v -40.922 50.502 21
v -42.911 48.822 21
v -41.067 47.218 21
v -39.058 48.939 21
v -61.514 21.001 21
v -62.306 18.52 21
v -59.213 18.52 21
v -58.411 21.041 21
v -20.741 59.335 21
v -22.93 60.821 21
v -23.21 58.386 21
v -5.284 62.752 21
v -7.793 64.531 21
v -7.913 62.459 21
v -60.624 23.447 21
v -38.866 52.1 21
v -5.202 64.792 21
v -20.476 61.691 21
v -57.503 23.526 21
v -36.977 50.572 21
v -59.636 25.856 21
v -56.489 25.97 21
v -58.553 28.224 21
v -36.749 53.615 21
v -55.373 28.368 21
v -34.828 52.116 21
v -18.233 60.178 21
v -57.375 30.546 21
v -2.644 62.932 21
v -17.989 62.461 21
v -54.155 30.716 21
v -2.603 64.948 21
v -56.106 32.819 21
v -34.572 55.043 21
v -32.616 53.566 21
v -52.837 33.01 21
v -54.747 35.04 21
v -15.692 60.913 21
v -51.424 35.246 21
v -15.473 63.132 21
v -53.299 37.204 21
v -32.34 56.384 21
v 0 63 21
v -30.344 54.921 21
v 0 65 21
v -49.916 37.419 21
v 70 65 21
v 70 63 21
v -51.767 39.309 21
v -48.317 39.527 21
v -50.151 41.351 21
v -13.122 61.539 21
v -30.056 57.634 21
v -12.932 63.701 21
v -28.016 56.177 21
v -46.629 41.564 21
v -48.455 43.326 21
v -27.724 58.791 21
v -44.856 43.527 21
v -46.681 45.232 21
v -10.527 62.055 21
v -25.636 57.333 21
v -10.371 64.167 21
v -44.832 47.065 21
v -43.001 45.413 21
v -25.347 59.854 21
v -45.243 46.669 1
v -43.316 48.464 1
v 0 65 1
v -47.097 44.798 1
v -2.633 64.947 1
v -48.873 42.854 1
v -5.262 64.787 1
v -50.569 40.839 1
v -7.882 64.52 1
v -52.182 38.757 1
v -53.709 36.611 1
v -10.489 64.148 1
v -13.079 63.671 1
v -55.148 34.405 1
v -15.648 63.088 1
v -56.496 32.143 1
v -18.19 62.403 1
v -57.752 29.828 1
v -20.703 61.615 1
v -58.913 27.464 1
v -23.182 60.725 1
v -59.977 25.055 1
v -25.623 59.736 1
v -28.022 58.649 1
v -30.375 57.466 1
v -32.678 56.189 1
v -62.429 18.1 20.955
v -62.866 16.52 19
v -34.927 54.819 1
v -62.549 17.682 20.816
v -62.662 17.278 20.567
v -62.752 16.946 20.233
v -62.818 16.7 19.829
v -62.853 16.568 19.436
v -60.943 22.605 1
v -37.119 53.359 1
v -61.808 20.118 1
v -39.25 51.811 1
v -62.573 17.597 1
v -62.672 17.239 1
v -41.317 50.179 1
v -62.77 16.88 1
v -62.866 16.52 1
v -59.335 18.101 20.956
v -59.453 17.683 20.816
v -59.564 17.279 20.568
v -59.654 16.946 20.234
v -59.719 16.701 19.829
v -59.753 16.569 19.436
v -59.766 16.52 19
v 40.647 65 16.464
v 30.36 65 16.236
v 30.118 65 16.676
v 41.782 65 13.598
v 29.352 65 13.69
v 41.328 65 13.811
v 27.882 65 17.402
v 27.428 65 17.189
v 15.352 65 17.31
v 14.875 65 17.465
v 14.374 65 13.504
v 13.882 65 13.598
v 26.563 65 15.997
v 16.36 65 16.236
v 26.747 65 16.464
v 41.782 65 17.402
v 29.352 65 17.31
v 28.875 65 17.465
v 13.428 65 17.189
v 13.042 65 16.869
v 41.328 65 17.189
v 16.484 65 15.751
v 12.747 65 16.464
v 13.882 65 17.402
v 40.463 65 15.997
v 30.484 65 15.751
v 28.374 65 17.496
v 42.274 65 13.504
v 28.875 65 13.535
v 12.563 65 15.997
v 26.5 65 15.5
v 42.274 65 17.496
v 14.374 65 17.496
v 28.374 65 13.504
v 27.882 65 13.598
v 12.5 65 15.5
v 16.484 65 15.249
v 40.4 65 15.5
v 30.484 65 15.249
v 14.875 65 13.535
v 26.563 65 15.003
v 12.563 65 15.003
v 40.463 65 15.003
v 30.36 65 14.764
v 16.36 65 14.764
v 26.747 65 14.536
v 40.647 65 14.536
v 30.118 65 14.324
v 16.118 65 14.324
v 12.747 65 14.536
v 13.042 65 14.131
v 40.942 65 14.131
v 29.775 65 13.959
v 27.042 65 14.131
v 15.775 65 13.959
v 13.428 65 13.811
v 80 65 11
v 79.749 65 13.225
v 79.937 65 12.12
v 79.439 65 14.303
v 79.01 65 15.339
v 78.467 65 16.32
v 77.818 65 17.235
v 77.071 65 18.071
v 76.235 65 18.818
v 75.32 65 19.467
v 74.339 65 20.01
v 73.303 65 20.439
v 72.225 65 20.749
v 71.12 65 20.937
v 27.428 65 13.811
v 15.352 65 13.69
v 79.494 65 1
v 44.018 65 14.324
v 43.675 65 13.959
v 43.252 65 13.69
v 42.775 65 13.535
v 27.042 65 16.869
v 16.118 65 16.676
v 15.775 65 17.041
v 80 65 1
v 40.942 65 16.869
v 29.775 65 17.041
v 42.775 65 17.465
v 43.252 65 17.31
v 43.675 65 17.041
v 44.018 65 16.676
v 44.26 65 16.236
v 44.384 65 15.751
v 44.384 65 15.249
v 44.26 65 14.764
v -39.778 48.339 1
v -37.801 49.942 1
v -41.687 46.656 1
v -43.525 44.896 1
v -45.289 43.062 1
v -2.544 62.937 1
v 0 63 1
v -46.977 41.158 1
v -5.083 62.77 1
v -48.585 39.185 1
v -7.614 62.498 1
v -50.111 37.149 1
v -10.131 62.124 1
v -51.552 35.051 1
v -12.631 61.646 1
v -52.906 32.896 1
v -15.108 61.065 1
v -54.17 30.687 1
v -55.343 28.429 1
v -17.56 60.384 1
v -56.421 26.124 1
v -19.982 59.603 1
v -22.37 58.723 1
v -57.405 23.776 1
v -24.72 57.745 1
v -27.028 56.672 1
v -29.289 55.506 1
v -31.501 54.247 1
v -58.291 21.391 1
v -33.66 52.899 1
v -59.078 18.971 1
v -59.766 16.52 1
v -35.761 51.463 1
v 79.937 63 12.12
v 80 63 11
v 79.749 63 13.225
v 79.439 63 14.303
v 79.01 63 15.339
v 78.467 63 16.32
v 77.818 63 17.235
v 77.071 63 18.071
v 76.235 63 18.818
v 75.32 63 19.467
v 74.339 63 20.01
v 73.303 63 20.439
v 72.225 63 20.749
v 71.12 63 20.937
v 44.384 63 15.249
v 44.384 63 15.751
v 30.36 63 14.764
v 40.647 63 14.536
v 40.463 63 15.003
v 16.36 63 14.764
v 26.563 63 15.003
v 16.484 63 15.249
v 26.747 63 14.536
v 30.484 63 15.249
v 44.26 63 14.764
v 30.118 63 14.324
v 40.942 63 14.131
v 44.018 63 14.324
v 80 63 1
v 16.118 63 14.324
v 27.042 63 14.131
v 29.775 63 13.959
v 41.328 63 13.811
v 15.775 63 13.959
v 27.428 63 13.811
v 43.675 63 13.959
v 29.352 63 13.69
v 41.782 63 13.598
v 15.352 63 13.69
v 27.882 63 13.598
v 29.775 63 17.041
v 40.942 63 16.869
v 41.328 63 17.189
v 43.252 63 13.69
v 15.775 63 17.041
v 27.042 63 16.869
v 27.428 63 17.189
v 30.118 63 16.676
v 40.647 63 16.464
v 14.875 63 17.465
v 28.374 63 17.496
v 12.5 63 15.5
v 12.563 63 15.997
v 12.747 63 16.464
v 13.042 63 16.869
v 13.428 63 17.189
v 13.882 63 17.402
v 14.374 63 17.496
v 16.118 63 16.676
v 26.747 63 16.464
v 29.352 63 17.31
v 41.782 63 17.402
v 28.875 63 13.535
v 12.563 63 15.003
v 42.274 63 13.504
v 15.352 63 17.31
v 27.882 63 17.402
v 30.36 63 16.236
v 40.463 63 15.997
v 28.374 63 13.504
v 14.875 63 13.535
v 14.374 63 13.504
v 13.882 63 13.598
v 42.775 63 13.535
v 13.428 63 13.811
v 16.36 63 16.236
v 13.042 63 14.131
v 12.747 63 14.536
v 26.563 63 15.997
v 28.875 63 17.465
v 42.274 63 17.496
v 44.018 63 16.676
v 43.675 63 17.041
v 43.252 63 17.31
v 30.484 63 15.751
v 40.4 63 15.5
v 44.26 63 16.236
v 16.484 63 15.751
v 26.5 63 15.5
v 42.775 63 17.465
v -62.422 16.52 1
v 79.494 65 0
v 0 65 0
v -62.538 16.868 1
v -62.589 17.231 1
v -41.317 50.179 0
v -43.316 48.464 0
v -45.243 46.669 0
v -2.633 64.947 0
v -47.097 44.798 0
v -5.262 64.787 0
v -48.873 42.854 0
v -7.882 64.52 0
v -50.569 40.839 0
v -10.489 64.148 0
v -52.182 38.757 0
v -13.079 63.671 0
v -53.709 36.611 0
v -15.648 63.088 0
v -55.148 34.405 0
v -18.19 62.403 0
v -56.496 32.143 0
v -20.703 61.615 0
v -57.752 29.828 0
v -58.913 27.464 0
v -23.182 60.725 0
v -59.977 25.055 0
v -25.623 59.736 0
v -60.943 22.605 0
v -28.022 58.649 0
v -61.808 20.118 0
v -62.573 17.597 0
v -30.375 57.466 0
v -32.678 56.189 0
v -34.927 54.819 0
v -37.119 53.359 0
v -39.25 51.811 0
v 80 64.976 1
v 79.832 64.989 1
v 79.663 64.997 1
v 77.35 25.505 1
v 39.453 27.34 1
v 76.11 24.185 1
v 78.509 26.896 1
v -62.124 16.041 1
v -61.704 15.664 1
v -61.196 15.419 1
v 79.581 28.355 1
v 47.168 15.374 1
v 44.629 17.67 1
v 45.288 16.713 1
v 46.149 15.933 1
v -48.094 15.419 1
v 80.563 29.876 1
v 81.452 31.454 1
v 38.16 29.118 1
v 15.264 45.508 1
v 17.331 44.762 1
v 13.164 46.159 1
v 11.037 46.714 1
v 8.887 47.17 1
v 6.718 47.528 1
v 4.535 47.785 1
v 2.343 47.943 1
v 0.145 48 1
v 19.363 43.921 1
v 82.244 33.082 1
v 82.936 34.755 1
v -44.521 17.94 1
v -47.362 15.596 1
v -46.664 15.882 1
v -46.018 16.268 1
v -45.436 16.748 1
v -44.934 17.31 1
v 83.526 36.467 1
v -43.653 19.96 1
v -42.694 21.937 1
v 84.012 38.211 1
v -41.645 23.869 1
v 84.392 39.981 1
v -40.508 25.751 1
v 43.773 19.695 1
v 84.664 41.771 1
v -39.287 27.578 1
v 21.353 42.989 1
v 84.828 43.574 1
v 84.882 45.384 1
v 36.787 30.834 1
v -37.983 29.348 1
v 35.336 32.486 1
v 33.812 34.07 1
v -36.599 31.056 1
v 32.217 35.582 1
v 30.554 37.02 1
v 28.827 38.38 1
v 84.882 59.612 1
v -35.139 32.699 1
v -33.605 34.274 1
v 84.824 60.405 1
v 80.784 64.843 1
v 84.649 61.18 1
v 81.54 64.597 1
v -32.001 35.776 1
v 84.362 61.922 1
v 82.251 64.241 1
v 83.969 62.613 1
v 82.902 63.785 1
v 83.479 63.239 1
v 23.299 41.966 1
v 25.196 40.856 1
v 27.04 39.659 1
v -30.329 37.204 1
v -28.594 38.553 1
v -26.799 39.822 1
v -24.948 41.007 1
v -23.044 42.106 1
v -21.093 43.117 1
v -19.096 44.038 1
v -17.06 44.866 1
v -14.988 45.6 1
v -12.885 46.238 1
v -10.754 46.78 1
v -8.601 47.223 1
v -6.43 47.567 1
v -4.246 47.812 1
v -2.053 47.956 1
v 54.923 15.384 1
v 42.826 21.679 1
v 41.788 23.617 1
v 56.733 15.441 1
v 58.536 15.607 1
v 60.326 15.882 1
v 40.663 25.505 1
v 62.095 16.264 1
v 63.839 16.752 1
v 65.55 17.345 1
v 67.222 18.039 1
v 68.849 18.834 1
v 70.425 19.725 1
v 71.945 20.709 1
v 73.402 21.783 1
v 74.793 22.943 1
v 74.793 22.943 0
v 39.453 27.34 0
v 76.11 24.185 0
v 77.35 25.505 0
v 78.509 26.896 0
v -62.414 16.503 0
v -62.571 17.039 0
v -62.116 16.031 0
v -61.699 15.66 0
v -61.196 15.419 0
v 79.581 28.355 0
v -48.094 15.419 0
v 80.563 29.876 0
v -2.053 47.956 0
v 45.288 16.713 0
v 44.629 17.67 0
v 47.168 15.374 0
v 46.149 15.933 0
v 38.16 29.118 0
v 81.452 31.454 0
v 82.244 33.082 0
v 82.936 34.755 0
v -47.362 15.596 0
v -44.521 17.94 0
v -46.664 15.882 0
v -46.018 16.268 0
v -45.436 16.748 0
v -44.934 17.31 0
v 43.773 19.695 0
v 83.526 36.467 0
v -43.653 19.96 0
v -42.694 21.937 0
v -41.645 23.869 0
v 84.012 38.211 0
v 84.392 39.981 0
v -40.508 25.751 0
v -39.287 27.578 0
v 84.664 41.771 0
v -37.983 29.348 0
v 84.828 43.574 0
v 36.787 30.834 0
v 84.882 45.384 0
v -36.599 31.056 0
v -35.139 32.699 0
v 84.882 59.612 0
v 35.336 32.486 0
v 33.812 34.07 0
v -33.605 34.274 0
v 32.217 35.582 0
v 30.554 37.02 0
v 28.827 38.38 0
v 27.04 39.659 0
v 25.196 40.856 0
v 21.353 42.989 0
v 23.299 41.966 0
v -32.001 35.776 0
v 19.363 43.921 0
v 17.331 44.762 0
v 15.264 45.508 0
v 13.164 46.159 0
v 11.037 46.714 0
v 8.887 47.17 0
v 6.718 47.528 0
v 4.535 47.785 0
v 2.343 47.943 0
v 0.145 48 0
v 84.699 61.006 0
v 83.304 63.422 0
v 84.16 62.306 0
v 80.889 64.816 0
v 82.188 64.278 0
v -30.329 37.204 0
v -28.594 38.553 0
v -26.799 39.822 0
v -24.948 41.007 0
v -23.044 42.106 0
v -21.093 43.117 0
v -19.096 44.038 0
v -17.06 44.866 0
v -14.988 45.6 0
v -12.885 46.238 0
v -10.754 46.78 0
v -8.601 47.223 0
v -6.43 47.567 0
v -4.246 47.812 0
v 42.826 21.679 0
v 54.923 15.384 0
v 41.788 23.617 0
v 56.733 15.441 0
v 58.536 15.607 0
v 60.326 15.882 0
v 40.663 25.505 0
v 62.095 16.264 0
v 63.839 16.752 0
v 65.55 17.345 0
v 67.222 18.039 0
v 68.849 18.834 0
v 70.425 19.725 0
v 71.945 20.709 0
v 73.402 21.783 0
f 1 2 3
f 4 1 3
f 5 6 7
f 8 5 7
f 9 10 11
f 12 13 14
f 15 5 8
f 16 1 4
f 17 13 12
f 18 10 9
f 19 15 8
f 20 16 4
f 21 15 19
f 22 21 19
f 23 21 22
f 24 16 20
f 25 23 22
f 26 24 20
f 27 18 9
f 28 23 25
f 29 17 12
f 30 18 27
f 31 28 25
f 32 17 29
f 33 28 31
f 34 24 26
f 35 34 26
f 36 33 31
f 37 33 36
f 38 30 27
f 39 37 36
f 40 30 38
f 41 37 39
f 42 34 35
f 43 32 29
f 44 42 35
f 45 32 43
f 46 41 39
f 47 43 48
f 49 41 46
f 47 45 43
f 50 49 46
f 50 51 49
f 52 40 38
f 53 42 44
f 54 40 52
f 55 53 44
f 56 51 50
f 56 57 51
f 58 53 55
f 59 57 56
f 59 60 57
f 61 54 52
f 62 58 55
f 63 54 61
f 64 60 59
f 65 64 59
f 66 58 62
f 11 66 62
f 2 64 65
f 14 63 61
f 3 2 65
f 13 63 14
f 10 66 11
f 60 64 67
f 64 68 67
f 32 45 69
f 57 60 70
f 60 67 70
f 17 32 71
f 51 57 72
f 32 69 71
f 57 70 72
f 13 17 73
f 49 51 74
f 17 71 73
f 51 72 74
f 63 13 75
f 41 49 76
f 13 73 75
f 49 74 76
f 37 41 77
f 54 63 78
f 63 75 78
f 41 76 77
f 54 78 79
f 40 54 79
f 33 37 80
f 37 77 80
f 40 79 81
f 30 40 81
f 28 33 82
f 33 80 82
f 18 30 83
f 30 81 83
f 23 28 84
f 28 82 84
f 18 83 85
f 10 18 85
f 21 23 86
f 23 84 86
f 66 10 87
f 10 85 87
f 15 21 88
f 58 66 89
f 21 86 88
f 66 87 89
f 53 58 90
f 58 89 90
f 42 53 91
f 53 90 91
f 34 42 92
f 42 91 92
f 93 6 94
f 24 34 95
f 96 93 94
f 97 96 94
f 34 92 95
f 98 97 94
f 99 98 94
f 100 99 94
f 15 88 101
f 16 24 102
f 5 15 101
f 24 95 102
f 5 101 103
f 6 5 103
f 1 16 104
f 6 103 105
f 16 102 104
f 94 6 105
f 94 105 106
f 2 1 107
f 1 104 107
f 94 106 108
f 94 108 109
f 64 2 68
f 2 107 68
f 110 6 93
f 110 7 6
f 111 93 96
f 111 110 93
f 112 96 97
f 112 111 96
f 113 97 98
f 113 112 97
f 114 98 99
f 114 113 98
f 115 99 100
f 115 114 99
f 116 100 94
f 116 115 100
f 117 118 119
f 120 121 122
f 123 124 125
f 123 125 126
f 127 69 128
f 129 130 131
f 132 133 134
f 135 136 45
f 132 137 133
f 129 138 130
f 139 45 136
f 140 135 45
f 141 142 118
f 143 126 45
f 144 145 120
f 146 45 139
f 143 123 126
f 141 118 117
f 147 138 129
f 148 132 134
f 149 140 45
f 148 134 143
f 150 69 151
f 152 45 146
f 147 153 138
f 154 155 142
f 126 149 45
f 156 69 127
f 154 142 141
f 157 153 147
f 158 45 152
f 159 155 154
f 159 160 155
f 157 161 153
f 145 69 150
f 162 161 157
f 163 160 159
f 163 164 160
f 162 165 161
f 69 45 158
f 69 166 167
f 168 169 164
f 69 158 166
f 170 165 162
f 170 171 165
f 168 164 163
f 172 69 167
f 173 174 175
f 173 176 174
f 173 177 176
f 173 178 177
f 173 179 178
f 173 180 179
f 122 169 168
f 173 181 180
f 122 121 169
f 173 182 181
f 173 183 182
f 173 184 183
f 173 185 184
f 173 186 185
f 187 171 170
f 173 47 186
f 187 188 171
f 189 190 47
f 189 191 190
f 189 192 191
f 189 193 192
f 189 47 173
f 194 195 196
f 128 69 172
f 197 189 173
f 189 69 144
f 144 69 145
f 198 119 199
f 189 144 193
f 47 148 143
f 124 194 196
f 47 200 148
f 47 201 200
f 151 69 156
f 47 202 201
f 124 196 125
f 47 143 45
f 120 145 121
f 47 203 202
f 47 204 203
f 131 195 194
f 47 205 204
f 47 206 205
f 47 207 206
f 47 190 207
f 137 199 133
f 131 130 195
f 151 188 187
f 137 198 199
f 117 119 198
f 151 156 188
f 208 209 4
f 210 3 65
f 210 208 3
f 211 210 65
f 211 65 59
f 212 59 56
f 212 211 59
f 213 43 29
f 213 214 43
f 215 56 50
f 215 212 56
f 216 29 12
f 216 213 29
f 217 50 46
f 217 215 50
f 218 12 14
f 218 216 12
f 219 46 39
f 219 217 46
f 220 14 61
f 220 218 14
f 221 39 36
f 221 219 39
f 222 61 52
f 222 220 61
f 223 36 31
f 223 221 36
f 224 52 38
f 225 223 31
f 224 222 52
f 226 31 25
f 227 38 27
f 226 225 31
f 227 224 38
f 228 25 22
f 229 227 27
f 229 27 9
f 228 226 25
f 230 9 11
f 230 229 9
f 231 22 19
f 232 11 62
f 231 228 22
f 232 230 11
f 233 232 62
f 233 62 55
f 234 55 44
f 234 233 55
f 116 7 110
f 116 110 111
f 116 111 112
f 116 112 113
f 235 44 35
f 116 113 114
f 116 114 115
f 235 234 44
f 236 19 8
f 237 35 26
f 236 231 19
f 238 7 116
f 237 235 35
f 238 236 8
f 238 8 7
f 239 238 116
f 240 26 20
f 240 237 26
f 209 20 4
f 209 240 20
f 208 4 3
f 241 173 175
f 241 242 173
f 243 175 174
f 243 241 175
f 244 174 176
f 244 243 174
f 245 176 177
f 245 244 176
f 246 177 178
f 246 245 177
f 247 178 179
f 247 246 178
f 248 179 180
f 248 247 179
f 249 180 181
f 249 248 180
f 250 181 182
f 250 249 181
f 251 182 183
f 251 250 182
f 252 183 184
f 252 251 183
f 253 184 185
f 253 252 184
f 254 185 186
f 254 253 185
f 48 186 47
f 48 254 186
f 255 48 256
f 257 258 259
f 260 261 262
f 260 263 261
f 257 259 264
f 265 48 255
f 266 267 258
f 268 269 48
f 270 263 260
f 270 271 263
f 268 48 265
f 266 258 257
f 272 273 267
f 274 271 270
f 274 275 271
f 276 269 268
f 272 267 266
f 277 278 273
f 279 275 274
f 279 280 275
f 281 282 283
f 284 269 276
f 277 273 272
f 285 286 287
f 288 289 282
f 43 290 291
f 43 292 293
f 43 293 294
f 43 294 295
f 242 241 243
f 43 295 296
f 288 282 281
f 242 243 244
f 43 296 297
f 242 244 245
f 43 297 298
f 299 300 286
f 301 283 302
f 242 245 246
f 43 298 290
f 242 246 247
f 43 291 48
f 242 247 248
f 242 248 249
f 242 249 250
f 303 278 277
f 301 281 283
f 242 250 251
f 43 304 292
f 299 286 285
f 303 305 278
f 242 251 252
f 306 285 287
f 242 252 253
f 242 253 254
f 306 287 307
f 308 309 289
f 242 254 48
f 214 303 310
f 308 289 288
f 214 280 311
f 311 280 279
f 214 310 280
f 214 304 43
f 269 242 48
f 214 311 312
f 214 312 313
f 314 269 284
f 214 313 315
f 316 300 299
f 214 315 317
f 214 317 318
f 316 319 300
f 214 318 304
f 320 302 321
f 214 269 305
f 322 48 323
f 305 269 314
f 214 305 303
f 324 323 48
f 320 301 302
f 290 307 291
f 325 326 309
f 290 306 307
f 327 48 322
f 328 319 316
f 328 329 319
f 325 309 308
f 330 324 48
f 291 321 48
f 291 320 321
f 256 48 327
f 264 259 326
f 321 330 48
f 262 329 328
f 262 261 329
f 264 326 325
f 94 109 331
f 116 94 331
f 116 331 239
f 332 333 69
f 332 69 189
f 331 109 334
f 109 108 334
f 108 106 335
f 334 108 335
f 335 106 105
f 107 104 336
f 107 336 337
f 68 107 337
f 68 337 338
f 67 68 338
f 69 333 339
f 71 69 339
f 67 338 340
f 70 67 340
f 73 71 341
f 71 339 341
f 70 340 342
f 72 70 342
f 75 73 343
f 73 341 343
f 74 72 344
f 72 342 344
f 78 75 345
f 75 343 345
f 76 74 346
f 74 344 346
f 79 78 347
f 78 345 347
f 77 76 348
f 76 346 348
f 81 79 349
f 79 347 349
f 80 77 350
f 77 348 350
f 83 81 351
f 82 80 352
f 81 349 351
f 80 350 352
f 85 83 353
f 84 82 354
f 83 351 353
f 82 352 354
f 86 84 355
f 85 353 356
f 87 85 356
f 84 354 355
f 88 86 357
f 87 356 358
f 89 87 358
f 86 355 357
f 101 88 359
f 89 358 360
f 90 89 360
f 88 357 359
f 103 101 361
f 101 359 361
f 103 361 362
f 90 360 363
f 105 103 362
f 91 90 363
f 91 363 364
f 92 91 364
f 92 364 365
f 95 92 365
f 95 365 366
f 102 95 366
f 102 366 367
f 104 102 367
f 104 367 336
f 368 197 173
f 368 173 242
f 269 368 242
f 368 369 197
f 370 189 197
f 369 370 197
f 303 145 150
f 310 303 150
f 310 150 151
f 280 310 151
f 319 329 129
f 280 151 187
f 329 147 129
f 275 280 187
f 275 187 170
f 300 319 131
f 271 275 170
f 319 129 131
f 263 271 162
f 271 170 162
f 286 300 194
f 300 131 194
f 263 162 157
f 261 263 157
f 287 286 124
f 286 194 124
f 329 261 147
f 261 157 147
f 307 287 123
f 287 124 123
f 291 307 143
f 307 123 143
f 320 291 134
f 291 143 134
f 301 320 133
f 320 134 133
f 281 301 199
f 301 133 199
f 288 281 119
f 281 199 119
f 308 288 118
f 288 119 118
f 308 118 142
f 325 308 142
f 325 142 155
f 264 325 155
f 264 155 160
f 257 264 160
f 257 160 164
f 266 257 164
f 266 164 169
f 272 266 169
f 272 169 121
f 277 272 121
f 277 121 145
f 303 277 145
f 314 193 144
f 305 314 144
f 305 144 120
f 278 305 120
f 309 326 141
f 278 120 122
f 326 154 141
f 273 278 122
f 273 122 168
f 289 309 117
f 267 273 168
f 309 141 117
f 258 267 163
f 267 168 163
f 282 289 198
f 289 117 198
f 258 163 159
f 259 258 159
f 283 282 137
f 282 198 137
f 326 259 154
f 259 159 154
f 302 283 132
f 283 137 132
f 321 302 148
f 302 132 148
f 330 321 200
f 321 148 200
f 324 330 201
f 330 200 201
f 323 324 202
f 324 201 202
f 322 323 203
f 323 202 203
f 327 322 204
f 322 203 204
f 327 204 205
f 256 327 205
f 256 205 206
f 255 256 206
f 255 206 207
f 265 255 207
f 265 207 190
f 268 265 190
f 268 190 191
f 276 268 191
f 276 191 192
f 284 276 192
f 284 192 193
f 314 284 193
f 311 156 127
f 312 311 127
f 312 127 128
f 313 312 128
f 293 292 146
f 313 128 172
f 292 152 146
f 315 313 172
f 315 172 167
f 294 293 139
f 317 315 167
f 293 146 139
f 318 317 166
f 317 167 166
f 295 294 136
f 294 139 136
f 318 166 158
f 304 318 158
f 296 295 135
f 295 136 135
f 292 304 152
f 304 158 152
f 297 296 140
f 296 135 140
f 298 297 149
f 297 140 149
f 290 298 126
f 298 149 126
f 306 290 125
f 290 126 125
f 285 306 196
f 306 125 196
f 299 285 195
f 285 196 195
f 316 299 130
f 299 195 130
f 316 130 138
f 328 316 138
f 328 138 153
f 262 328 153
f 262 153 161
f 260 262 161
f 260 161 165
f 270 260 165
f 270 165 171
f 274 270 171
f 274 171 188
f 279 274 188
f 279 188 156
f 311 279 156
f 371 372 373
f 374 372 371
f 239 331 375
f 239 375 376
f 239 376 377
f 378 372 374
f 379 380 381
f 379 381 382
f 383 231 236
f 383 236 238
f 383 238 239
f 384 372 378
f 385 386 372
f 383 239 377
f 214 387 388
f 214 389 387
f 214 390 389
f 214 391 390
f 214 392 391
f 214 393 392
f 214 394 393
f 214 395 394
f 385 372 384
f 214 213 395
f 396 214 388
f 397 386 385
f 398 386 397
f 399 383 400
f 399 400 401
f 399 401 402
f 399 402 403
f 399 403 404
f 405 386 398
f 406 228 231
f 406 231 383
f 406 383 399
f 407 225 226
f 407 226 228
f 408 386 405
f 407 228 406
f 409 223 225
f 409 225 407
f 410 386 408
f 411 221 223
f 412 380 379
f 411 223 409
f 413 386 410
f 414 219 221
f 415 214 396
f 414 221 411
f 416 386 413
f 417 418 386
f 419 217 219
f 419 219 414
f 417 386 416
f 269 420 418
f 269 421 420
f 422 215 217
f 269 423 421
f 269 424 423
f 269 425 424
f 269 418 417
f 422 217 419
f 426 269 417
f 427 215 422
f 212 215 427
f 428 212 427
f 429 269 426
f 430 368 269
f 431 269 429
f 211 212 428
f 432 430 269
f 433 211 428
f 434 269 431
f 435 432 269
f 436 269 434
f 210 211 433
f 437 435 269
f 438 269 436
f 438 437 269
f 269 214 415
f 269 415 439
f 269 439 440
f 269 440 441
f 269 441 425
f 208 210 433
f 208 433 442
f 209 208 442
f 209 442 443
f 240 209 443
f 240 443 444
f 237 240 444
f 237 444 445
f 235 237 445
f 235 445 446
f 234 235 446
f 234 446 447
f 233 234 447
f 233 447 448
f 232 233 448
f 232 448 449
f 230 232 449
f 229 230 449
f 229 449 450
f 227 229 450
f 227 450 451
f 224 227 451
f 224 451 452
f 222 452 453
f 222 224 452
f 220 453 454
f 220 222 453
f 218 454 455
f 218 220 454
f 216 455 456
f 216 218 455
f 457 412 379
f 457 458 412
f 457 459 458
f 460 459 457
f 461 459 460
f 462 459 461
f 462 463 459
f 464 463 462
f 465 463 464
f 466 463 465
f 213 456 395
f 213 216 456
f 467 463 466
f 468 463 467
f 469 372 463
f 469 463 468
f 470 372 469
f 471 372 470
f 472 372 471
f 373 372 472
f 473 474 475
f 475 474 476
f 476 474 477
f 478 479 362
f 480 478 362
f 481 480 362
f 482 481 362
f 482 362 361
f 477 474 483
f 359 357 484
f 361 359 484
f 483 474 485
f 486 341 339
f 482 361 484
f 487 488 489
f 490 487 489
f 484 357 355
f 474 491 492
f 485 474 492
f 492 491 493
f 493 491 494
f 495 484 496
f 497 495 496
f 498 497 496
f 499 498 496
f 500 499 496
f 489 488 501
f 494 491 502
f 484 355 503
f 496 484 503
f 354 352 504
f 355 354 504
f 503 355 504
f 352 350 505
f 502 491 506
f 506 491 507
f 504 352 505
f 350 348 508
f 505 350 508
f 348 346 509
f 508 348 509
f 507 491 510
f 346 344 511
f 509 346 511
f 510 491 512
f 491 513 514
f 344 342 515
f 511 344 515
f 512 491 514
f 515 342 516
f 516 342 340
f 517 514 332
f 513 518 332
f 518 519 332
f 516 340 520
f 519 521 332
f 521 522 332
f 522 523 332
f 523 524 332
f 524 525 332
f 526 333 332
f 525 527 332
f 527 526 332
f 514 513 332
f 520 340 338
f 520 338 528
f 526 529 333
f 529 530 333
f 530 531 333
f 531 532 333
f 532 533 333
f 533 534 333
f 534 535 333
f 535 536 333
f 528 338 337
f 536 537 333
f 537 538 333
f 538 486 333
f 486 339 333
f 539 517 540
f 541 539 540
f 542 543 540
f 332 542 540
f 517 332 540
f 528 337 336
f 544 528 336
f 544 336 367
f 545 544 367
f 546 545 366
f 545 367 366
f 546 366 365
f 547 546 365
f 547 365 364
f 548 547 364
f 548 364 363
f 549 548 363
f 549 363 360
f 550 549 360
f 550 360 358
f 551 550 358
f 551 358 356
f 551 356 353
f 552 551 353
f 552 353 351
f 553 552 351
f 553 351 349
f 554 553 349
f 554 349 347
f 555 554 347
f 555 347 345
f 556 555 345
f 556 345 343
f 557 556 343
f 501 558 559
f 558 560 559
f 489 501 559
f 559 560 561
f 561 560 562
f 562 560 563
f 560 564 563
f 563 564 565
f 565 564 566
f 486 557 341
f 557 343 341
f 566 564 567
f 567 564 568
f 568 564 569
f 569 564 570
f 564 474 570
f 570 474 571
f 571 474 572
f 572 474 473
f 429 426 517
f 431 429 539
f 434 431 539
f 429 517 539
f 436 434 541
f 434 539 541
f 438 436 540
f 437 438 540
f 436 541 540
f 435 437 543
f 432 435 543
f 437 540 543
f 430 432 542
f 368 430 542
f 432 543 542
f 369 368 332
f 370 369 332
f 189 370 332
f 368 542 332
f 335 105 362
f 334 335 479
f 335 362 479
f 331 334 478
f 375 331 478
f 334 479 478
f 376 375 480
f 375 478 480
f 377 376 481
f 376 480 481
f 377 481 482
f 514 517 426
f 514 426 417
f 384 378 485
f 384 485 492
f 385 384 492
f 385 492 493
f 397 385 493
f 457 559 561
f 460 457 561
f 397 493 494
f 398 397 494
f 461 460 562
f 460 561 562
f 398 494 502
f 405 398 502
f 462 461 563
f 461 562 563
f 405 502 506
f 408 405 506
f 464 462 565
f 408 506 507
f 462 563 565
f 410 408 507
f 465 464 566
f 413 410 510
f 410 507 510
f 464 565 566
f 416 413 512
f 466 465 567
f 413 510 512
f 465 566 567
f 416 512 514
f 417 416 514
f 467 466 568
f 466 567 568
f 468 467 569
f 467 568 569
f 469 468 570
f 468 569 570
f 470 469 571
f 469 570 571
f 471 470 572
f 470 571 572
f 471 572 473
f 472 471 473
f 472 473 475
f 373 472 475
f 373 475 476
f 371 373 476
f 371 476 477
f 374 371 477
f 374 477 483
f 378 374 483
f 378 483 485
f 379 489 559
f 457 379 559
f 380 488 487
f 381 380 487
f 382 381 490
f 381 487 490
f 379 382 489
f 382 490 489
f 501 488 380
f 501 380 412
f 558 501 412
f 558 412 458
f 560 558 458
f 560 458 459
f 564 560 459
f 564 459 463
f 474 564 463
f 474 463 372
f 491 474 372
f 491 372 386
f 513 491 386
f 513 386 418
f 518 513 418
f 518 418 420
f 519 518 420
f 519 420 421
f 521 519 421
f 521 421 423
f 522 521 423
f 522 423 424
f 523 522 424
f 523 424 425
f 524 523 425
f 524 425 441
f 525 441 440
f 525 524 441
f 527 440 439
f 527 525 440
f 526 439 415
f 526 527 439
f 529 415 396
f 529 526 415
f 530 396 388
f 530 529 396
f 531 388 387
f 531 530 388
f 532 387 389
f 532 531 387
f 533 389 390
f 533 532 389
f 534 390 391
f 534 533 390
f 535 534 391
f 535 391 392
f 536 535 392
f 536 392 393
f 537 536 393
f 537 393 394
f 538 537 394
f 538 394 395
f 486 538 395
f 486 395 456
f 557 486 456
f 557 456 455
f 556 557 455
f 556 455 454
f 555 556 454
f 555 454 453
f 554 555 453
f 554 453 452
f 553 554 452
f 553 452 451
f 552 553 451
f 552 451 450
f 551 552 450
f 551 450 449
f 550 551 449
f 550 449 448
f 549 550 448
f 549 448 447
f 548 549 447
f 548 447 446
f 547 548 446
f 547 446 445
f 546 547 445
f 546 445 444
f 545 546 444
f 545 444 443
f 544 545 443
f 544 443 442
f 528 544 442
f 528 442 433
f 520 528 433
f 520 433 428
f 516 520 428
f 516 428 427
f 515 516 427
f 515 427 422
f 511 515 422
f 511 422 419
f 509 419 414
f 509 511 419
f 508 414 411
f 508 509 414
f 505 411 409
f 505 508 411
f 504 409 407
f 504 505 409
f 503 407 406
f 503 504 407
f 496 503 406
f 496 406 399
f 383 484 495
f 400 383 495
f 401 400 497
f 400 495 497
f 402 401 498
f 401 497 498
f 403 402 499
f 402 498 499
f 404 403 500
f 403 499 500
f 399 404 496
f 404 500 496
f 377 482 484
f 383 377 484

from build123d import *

# Parameters (mm, degrees)
PAD_DEPTH    = 1
PAD004_DEPTH = 20
FILLET_R     = 10
FILLET001_R  = 2
SKETCH003_R  = 2
POCKET_DEPTH = 49.6274


with BuildPart() as part:
    # Sketch → Pad (new body)
    with BuildSketch(Plane.XY):
        with BuildLine():
            ThreePointArc((0, 65), (-39.250322, 51.811314), (-62.572638, 17.5973))
            ThreePointArc((-62.572638, 17.5973), (-62.281657, 16.256919), (-61.1956, 15.4192))
            Line((-61.1956, 15.4192), (-48.0942, 15.4192))
            ThreePointArc((-48.0942, 15.4192), (-46.017568, 16.268418), (-44.521334, 17.9402))
            ThreePointArc((44.629065, 17.6705), (0.14521, 47.99978), (-44.521334, 17.9402))
            ThreePointArc((44.629065, 17.6705), (45.695788, 16.297968), (47.167959, 15.3736))
            Line((47.167959, 15.3736), (54.923211, 15.384158))
            ThreePointArc((54.923211, 15.384158), (76.110008, 24.185371), (84.88237, 45.38413))
            Line((84.88237, 59.61183), (84.88237, 45.38413))
            ThreePointArc((84.88237, 59.61183), (83.304212, 63.421842), (79.4942, 65))
            Line((0, 65), (79.4942, 65))
        make_face()
    extrude(amount=PAD_DEPTH)

    # Sketch001 → Pad004 (new body)
    with BuildSketch(Plane.XY.offset(1)):
        with BuildLine():
            ThreePointArc((6e-05, 65), (-39.693641, 51.472467), (-62.865542, 16.5204))
            Line((-62.865542, 16.5204), (-59.765542, 16.5204))
            ThreePointArc((6e-05, 63), (-37.80132, 49.942273), (-59.765542, 16.5204))
            Line((80.00006, 63), (6e-05, 63))
            Line((80.00006, 65), (80.00006, 63))
            Line((6e-05, 65), (80.00006, 65))
        make_face()
    extrude(amount=PAD004_DEPTH)

    # Fillet
    fillet_edges = [part.edges().sort_by_distance(p)[0] for p in [
        (80.00006, 64, 21),
    ]]
    fillet(fillet_edges, radius=FILLET_R)

    # Fillet001
    fillet001_edges = [part.edges().sort_by_distance(p)[0] for p in [
        (-61.315542, 16.5204, 21),
    ]]
    fillet(fillet001_edges, radius=FILLET001_R)

    # Sketch003 → Pocket (cut, through all)
    with BuildSketch(Plane(origin=(0, 65, 0), x_dir=(-1, 0, 0), z_dir=(0, 1, 0))):
        with Locations((-42.40006, 15.5)):
            Circle(SKETCH003_R)
        with Locations((-28.50006, 15.5)):
            Circle(SKETCH003_R)
        with Locations((-14.50006, 15.5)):
            Circle(SKETCH003_R)
    extrude(amount=-POCKET_DEPTH, mode=Mode.SUBTRACT)


solid = part.part
